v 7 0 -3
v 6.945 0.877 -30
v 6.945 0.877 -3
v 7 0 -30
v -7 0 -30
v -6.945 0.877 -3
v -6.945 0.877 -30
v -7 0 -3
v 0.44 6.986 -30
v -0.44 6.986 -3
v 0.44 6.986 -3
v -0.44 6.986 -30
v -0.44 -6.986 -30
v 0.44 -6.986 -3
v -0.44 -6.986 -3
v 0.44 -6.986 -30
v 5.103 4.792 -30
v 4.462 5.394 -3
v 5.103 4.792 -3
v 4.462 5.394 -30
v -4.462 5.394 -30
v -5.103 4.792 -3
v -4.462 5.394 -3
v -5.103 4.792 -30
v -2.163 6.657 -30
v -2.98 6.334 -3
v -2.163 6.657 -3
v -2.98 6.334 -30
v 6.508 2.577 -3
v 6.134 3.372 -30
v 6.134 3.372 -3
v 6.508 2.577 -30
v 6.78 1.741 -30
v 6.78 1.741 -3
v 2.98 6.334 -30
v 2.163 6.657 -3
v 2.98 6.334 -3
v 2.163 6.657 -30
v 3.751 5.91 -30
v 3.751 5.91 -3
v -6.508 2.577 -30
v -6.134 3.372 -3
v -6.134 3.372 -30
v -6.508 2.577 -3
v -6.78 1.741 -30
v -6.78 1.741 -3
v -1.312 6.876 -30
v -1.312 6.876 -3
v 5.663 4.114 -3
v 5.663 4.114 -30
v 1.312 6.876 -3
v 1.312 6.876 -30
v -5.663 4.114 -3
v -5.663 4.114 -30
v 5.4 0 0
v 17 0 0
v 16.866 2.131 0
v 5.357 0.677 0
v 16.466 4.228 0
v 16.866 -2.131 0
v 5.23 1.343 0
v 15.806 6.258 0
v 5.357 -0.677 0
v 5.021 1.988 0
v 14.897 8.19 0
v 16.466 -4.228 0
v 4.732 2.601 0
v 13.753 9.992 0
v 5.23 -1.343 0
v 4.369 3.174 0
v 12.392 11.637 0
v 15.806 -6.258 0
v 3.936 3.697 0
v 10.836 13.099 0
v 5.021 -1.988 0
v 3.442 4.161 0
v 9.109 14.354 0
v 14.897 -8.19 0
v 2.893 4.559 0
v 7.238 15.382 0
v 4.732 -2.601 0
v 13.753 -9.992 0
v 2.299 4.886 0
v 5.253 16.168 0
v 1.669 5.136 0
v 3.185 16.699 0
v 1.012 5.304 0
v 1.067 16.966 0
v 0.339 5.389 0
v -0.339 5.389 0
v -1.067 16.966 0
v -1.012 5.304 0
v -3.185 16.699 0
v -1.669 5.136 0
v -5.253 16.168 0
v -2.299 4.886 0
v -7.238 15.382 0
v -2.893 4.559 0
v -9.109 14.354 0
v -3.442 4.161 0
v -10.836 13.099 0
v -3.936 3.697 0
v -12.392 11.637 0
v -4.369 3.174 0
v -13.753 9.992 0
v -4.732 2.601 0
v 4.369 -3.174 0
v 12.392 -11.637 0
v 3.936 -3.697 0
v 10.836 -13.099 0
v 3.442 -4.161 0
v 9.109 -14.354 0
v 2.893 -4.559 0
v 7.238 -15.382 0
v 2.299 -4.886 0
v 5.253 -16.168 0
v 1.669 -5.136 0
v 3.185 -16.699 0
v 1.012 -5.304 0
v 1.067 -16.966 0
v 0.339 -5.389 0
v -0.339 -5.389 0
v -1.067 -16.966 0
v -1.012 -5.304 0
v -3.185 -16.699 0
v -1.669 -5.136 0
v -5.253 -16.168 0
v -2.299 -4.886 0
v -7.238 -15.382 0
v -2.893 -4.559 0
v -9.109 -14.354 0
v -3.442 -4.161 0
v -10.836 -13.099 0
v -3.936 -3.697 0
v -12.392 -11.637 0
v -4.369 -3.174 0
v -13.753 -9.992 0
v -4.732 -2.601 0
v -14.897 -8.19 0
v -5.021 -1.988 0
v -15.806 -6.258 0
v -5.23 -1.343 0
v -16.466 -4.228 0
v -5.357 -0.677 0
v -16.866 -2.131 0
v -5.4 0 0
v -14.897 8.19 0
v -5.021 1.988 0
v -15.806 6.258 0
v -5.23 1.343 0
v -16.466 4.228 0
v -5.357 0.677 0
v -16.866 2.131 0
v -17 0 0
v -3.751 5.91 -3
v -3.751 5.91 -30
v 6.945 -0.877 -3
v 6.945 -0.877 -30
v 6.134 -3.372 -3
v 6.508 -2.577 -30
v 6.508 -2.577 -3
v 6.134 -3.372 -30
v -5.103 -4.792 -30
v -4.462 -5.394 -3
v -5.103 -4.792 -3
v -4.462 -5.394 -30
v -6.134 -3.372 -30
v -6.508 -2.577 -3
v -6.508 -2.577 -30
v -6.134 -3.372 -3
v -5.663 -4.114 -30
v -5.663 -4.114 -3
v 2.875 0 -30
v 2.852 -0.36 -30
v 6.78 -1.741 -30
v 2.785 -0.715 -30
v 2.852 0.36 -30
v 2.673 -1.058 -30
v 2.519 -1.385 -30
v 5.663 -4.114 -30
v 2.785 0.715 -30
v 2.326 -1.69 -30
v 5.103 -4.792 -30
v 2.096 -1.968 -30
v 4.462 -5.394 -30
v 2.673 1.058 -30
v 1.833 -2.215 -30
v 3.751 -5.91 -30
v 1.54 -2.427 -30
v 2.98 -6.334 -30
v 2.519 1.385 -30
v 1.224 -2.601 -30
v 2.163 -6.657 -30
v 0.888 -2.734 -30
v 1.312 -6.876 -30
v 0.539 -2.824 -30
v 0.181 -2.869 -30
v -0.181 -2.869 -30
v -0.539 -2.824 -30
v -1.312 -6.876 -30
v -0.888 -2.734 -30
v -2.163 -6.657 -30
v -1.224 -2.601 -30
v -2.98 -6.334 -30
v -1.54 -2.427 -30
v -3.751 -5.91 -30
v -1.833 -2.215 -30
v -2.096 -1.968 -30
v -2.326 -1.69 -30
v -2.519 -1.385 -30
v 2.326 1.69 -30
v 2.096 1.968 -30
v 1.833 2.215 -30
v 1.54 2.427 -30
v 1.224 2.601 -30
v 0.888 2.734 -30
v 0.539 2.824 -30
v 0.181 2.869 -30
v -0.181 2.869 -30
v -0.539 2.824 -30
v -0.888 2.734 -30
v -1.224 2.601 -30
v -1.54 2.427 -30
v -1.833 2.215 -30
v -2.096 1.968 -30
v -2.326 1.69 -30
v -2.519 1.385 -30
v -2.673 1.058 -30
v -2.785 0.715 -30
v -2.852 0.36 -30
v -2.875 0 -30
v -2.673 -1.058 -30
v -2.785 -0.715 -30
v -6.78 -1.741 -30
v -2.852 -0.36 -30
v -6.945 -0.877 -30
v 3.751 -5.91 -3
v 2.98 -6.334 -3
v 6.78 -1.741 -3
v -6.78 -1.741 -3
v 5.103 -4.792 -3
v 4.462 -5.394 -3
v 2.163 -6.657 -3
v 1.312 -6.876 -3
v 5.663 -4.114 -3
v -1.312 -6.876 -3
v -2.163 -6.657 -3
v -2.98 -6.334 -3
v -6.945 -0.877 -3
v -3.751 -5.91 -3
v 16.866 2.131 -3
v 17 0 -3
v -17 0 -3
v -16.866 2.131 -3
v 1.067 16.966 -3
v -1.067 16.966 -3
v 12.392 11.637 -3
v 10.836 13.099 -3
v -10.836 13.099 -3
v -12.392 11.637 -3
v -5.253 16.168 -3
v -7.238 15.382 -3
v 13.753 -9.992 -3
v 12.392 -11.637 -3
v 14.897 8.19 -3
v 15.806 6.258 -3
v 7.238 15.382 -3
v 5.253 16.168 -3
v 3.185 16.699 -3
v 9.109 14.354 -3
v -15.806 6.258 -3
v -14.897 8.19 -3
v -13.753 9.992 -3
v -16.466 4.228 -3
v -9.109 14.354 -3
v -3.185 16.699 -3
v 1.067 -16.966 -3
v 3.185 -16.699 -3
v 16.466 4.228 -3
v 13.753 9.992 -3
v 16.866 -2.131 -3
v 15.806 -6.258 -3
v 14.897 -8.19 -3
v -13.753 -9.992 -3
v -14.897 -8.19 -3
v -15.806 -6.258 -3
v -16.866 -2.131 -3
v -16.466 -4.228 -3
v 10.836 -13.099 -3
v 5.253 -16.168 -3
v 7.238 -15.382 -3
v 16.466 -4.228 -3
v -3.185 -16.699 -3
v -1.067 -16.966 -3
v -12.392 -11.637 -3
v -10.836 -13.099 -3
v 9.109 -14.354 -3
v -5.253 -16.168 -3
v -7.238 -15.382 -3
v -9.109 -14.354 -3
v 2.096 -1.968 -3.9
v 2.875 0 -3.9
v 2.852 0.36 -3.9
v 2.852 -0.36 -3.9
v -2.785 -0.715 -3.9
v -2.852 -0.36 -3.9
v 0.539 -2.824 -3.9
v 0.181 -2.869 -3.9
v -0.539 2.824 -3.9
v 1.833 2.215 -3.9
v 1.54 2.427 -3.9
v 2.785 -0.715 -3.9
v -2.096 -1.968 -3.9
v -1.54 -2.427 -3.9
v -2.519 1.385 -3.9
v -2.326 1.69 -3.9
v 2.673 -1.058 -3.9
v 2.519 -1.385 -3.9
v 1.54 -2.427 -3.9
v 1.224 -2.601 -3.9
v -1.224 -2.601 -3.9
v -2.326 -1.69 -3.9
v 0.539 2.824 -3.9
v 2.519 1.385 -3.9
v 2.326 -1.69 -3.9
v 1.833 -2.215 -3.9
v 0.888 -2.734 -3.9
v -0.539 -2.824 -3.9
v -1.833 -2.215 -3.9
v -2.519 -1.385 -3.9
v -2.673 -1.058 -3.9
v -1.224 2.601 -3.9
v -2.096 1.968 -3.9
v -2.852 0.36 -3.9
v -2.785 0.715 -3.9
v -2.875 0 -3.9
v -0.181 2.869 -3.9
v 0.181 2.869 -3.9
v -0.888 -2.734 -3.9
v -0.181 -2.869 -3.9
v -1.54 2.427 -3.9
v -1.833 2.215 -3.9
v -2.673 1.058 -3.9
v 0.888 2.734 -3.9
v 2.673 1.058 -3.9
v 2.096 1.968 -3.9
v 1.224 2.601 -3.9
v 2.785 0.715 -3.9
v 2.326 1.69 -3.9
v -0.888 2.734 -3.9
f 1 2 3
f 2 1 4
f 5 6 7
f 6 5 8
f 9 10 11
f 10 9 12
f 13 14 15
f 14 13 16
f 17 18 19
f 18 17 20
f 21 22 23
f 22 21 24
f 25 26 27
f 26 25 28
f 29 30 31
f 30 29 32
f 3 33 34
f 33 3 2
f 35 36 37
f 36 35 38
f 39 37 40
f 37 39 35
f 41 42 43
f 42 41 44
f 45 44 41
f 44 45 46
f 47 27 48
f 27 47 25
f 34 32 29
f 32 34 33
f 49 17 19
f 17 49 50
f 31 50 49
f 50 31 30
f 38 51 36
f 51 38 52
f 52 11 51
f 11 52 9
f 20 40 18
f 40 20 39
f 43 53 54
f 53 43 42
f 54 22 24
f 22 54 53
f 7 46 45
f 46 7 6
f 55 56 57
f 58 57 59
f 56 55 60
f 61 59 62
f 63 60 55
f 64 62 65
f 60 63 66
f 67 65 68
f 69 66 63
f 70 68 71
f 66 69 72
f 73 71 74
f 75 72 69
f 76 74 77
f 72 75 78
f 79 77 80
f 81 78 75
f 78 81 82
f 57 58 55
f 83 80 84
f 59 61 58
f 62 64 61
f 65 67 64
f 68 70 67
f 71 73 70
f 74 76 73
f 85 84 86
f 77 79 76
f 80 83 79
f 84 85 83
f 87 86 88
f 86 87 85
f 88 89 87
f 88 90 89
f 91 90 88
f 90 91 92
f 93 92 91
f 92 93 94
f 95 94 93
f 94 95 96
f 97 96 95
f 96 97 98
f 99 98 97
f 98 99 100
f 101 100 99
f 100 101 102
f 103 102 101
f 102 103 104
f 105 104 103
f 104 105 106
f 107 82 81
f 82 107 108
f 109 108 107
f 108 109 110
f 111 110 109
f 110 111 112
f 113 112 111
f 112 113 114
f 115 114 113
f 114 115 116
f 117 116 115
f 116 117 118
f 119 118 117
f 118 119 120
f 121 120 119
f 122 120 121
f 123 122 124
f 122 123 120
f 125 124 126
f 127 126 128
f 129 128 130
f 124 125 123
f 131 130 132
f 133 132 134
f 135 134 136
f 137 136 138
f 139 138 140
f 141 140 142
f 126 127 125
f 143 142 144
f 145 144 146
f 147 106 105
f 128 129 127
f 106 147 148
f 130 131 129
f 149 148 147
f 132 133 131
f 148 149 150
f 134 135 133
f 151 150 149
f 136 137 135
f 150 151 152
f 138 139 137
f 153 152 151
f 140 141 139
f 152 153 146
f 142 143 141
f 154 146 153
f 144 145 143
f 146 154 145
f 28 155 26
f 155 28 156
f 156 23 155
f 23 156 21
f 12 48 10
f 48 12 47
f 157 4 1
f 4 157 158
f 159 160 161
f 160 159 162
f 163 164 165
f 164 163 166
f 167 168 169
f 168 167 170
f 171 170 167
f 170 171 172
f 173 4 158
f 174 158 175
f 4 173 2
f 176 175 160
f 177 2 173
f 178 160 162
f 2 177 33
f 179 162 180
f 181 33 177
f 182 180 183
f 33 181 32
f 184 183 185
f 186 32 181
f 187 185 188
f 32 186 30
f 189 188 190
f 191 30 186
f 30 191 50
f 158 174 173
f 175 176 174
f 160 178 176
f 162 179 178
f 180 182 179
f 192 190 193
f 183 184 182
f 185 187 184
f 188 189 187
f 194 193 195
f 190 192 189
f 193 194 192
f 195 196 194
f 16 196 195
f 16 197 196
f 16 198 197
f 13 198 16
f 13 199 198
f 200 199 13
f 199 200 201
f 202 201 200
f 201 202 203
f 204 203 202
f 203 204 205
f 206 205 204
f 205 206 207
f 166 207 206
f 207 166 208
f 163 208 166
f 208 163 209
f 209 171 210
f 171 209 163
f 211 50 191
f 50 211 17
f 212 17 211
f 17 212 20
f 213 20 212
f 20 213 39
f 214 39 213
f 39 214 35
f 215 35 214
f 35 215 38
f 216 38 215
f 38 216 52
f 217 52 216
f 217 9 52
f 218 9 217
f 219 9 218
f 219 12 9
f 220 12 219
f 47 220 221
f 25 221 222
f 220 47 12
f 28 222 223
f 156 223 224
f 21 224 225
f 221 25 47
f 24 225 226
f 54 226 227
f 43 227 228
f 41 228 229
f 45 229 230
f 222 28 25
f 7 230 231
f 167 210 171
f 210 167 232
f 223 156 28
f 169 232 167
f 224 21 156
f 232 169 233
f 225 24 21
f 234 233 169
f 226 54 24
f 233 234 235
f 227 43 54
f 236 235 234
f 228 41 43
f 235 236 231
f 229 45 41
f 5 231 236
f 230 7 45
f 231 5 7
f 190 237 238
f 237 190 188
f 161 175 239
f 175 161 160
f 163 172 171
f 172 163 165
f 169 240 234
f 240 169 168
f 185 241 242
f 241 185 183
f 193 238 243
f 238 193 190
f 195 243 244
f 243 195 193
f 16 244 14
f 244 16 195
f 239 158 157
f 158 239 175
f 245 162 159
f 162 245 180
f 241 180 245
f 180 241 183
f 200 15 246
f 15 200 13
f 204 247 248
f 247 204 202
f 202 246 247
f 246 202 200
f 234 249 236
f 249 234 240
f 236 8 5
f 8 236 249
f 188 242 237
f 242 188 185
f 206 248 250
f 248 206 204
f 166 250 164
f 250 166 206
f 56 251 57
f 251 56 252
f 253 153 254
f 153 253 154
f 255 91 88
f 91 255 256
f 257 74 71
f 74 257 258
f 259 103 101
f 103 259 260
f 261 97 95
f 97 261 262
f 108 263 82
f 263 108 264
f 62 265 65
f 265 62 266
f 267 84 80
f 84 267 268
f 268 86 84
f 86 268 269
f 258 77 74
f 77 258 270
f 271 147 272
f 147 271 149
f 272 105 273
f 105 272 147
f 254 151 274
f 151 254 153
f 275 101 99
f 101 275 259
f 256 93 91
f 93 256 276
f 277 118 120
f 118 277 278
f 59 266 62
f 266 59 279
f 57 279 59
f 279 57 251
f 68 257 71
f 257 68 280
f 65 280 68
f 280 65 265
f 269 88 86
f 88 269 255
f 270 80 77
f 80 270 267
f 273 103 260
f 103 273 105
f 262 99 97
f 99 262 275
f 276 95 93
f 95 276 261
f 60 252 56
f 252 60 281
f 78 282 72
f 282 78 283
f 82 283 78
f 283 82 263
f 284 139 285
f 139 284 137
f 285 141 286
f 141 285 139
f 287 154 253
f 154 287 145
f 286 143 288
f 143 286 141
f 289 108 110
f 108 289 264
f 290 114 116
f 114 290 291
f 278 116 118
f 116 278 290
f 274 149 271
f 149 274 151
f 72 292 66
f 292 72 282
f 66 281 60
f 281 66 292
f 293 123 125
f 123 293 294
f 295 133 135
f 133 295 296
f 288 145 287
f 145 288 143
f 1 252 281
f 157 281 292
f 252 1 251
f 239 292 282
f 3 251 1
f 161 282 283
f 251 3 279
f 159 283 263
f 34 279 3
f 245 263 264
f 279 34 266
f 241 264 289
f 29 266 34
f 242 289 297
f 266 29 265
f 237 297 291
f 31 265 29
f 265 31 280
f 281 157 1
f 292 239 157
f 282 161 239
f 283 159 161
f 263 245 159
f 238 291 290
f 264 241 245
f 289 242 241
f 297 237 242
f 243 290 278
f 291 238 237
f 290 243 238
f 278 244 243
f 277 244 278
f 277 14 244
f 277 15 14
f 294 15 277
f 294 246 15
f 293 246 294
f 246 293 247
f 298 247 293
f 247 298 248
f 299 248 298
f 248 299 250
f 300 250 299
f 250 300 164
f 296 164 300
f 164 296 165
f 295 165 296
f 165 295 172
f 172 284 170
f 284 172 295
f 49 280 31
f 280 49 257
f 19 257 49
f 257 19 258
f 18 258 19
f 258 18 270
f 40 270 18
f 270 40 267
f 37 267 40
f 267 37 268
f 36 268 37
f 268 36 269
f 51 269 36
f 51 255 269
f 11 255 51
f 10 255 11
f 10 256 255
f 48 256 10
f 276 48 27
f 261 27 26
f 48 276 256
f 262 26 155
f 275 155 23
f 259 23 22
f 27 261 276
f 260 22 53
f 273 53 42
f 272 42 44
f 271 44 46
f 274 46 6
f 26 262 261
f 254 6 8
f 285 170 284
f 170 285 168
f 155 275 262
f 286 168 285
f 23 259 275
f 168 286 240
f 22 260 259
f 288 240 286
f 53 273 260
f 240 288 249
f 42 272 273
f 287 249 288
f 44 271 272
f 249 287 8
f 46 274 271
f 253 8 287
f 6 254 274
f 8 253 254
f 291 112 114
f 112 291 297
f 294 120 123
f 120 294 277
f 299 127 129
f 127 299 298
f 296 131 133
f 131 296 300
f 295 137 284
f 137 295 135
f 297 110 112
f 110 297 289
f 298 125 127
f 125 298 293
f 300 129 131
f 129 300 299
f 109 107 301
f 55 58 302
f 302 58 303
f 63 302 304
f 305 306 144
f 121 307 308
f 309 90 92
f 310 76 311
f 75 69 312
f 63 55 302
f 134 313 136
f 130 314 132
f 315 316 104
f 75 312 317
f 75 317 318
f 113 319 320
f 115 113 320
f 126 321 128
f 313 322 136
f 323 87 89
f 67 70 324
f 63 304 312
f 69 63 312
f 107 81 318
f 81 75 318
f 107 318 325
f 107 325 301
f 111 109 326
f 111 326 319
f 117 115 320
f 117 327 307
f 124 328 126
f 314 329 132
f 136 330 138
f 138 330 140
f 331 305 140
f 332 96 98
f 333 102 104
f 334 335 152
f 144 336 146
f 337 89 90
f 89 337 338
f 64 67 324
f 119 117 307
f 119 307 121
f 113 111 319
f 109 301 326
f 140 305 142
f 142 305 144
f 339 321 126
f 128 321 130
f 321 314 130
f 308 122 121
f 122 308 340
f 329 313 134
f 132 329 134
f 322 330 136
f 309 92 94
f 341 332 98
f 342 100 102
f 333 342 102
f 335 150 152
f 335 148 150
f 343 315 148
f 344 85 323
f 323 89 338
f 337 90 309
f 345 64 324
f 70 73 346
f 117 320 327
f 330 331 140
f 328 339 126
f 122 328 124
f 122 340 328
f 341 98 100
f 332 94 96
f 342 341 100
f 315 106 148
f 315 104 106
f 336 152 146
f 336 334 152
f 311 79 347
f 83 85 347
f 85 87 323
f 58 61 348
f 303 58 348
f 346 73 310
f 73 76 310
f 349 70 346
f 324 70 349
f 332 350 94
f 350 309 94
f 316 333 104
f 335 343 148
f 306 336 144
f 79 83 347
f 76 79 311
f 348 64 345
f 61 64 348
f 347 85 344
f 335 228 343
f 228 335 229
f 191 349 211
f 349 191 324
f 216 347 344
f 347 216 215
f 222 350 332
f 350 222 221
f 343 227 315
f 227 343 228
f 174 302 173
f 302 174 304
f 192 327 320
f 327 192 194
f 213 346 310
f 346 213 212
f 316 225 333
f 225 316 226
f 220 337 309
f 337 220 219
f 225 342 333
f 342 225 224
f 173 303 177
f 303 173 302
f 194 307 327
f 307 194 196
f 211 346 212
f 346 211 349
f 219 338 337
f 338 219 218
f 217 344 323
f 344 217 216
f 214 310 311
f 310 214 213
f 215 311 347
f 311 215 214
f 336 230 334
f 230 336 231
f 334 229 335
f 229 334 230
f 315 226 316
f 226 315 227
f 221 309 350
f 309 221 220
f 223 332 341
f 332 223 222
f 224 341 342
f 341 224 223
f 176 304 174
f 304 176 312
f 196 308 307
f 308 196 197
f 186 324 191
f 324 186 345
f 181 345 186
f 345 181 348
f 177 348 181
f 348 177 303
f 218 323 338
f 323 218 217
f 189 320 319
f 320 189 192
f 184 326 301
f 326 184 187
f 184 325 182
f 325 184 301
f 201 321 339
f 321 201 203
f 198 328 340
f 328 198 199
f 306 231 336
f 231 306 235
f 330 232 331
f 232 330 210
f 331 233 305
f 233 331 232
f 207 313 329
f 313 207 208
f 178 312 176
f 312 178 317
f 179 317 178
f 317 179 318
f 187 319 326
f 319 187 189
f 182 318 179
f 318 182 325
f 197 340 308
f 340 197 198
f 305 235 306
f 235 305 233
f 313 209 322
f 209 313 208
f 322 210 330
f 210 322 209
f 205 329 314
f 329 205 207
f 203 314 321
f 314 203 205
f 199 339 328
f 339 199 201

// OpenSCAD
$fn = 50;


difference() {
	union() {
		translate(v = [0, 0, -30.0000000000]) {
			cylinder(h = 30, r = 7.0000000000);
		}
		translate(v = [0, 0, -3.0000000000]) {
			cylinder(h = 3, r = 17.0000000000);
		}
	}
	union() {
		translate(v = [0, 0, 0]) {
			rotate(a = [0, 0, 0]) {
				difference() {
					union() {
						#translate(v = [0, 0, -30.0000000000]) {
							cylinder(h = 30, r = 2.6000000000);
						}
						#translate(v = [0, 0, -3.9000000000]) {
							cylinder(h = 3.9000000000, r = 7.0000000000, r1 = 2.8750000000, r2 = 5.4000000000);
						}
						#translate(v = [0, 0, -30.0000000000]) {
							cylinder(h = 30, r = 2.8750000000);
						}
						#translate(v = [0, 0, -30.0000000000]) {
							cylinder(h = 30, r = 2.6000000000);
						}
					}
					union();
				}
			}
		}
	}
}
